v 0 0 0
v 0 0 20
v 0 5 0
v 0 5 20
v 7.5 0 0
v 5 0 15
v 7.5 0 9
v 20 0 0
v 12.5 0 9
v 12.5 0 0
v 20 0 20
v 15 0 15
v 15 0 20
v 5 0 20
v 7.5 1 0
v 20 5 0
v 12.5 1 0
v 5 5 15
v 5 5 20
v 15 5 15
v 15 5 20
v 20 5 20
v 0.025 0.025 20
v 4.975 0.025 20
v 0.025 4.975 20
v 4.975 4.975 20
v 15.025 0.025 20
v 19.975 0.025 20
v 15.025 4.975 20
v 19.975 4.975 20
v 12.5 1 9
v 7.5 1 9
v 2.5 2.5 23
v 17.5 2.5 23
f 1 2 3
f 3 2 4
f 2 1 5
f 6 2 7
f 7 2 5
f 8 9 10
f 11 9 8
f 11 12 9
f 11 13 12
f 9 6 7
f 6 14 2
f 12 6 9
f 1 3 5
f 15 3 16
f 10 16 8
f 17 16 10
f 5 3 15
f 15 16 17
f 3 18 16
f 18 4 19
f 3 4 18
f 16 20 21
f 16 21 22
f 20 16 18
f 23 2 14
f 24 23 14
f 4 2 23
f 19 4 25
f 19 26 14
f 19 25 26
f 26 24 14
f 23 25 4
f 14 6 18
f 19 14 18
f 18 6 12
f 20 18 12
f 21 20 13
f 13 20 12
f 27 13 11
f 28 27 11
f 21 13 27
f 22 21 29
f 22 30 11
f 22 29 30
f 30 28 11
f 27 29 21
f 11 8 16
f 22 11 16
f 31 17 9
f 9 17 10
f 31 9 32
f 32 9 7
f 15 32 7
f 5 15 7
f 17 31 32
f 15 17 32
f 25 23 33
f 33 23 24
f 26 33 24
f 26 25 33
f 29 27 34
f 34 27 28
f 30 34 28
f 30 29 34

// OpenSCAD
difference() {
	union() {
        cube( [5,5,20] );
        translate([5,0,0]) cube( [10,5,15] );
        translate([15,0,0]) cube( [5,5,20] );
	
		translate( [2.5,2.5,20] )
		rotate( 45, [0,0,1] )
		cylinder( r1=3.5, r2=0, h=3, $fn=4 );
		
		translate( [15+2.5,2.5,20] )
		rotate( 45, [0,0,1] )
        cylinder( r1=3.5, r2=0, h=3, $fn=4 );
	}

	translate( [7.5,-1,-1] )
	cube([5,2,10]);
}
